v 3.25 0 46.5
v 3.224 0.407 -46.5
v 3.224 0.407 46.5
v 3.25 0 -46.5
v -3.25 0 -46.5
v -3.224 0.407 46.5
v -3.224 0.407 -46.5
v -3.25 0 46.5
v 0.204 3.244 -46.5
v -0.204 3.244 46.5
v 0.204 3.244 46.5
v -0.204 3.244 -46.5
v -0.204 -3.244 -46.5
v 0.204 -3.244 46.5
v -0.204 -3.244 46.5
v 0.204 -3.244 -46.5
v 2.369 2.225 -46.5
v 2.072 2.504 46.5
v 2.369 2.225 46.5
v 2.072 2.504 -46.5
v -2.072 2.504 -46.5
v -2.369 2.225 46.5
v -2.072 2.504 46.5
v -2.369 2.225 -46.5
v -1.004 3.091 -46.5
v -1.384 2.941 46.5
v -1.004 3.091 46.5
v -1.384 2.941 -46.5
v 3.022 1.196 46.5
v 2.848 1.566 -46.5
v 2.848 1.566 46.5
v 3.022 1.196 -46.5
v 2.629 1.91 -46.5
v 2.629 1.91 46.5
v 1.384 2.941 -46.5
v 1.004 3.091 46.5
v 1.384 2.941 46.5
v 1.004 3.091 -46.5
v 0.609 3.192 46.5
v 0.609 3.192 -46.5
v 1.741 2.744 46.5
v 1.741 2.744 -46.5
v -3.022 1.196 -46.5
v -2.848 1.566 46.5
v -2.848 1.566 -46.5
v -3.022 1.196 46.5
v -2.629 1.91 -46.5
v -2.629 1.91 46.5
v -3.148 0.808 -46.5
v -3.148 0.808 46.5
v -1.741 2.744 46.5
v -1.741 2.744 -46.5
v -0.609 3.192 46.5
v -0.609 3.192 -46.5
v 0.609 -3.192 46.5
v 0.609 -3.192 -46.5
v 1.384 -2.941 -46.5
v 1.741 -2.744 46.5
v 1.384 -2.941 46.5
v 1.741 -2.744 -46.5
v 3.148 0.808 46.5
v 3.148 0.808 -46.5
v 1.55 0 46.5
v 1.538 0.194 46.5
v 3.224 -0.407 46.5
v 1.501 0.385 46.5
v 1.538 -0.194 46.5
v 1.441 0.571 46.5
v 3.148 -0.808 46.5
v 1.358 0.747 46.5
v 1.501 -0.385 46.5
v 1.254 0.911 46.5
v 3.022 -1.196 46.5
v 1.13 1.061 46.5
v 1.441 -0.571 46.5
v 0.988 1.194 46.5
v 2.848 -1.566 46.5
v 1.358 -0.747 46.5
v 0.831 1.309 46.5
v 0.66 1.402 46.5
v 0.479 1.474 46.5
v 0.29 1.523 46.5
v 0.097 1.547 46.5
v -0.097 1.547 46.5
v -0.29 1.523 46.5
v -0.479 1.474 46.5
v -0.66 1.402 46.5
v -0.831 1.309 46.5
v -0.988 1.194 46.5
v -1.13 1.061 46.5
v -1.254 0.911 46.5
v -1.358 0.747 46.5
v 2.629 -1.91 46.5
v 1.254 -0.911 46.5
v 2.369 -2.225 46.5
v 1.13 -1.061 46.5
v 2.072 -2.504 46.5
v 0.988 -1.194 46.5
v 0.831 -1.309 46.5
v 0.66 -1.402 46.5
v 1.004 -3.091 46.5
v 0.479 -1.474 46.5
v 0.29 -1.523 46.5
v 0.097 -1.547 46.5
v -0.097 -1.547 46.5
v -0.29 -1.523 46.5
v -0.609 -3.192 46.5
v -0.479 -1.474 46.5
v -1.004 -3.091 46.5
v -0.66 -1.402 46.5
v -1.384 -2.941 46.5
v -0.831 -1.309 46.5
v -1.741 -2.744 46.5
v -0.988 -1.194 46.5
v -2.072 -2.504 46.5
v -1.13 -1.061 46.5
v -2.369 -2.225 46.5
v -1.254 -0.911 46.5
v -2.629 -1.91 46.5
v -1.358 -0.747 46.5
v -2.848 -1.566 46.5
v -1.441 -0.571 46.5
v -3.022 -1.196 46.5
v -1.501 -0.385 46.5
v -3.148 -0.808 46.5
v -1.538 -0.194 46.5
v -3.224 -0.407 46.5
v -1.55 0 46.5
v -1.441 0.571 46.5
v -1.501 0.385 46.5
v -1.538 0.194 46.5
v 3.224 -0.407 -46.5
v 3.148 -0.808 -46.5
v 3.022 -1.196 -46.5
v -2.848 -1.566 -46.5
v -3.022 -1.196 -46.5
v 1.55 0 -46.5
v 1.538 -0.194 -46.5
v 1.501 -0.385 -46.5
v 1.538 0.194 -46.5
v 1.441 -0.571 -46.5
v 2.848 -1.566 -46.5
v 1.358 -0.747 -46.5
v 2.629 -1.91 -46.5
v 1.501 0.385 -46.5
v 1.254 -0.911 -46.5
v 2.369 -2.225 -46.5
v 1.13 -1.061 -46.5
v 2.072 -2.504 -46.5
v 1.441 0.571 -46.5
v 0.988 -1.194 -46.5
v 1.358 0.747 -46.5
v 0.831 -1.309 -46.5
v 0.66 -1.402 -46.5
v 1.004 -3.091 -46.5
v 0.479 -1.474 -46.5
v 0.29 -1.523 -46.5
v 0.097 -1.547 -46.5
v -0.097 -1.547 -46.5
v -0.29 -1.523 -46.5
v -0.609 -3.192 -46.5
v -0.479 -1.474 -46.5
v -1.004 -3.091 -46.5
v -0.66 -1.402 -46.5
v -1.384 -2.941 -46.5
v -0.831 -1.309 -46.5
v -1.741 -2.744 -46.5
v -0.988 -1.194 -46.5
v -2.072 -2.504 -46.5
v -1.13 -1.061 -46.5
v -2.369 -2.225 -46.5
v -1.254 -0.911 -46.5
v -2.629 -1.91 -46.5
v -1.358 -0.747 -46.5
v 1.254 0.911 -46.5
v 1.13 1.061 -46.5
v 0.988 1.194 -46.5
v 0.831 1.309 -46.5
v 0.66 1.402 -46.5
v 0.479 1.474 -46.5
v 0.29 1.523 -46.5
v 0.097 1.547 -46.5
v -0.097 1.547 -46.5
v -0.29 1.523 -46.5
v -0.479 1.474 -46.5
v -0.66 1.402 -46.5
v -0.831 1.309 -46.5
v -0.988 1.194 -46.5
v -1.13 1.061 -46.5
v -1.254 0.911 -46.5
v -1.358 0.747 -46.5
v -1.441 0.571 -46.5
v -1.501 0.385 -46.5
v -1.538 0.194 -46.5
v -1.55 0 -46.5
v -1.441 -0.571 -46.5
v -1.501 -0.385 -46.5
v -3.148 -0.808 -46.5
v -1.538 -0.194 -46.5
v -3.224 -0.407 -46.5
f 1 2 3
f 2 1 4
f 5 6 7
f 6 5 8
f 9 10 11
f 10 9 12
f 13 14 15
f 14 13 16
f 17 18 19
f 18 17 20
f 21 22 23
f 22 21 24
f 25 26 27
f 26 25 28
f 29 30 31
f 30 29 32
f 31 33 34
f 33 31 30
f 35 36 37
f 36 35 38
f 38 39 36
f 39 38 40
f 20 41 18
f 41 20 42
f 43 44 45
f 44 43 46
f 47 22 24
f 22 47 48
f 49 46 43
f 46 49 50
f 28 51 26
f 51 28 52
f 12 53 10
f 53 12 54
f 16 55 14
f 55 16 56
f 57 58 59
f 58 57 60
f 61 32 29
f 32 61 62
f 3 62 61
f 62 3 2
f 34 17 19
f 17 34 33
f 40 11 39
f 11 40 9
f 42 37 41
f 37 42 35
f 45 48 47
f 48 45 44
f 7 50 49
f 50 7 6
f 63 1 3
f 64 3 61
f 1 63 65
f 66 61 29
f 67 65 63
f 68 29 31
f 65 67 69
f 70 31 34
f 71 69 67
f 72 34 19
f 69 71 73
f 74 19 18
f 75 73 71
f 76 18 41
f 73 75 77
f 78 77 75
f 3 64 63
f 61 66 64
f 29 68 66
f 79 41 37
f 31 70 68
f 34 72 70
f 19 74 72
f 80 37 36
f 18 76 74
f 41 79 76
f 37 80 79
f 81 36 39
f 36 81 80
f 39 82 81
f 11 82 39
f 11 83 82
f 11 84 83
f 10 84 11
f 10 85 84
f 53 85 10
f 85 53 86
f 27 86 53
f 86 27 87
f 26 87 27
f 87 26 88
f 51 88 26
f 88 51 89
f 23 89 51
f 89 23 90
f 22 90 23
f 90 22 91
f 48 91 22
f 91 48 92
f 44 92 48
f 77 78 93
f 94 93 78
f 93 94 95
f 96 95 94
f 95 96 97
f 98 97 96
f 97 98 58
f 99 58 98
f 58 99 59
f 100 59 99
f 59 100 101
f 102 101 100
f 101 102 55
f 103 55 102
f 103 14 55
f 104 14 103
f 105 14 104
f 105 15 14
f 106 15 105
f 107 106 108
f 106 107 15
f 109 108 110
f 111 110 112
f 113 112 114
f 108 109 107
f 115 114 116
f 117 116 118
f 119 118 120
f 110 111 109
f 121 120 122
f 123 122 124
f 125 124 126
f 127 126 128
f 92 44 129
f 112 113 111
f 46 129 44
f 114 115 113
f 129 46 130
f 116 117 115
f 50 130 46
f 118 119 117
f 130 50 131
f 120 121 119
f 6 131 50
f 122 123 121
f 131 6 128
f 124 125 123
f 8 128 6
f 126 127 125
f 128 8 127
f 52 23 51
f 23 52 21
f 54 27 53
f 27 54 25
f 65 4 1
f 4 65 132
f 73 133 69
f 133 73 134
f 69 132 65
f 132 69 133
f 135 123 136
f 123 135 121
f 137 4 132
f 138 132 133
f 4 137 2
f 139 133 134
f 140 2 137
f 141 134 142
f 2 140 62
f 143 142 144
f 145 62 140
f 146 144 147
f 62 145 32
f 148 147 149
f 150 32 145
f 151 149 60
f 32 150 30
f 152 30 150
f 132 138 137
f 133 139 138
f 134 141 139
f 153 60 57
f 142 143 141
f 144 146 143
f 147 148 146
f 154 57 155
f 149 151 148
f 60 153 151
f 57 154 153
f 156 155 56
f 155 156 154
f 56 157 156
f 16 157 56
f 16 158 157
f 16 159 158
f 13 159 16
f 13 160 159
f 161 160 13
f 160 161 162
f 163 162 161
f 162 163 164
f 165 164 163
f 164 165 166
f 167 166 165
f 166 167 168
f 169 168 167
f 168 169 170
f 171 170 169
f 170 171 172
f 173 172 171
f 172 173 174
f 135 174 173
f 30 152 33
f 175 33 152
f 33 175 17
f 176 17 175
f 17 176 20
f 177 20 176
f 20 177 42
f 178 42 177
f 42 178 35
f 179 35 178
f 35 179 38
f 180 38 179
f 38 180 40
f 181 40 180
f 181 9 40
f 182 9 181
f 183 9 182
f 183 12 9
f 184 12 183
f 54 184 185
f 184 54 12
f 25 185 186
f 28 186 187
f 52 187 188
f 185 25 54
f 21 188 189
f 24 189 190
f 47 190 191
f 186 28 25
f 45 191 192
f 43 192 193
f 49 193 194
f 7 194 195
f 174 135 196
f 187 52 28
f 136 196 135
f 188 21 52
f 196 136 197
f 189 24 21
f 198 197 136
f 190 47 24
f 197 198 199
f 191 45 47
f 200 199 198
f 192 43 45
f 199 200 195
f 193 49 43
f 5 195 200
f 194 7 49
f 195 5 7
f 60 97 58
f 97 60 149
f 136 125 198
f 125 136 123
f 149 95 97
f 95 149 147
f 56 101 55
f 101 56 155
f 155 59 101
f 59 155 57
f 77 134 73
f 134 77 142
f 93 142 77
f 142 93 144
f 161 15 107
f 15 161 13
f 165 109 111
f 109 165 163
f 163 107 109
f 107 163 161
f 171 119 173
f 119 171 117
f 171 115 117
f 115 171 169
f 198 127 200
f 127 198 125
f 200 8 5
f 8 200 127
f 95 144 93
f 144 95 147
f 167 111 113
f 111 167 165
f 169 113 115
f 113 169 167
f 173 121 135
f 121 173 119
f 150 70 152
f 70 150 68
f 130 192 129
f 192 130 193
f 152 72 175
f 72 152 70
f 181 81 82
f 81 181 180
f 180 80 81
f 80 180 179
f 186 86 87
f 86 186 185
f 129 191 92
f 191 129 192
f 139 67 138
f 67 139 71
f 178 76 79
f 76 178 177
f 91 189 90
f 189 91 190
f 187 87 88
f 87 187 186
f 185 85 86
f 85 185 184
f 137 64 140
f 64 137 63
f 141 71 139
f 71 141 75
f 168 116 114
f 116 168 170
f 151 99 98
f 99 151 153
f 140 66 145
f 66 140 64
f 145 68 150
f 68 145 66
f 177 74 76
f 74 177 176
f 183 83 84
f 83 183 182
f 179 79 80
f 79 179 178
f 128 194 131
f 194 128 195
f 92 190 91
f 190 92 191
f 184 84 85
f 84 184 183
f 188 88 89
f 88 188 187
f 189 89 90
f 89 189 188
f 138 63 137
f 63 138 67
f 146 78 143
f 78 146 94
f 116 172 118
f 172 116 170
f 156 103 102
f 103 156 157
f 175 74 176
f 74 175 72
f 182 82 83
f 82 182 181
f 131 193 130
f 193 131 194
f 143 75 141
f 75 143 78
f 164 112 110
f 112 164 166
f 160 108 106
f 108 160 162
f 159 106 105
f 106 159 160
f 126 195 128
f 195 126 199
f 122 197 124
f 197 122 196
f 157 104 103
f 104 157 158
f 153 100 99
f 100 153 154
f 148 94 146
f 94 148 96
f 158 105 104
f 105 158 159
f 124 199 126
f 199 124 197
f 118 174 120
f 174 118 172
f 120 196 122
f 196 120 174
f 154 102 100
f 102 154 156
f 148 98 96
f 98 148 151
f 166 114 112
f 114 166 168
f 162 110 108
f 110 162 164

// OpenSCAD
$fn = 50;


difference() {
	union() {
		translate(v = [0, 0, -46.5000000000]) {
			cylinder(h = 93, r = 3.2500000000);
		}
	}
	union() {
		translate(v = [0, 0, -100.0000000000]) {
			cylinder(h = 200, r = 1.5500000000);
		}
	}
}
